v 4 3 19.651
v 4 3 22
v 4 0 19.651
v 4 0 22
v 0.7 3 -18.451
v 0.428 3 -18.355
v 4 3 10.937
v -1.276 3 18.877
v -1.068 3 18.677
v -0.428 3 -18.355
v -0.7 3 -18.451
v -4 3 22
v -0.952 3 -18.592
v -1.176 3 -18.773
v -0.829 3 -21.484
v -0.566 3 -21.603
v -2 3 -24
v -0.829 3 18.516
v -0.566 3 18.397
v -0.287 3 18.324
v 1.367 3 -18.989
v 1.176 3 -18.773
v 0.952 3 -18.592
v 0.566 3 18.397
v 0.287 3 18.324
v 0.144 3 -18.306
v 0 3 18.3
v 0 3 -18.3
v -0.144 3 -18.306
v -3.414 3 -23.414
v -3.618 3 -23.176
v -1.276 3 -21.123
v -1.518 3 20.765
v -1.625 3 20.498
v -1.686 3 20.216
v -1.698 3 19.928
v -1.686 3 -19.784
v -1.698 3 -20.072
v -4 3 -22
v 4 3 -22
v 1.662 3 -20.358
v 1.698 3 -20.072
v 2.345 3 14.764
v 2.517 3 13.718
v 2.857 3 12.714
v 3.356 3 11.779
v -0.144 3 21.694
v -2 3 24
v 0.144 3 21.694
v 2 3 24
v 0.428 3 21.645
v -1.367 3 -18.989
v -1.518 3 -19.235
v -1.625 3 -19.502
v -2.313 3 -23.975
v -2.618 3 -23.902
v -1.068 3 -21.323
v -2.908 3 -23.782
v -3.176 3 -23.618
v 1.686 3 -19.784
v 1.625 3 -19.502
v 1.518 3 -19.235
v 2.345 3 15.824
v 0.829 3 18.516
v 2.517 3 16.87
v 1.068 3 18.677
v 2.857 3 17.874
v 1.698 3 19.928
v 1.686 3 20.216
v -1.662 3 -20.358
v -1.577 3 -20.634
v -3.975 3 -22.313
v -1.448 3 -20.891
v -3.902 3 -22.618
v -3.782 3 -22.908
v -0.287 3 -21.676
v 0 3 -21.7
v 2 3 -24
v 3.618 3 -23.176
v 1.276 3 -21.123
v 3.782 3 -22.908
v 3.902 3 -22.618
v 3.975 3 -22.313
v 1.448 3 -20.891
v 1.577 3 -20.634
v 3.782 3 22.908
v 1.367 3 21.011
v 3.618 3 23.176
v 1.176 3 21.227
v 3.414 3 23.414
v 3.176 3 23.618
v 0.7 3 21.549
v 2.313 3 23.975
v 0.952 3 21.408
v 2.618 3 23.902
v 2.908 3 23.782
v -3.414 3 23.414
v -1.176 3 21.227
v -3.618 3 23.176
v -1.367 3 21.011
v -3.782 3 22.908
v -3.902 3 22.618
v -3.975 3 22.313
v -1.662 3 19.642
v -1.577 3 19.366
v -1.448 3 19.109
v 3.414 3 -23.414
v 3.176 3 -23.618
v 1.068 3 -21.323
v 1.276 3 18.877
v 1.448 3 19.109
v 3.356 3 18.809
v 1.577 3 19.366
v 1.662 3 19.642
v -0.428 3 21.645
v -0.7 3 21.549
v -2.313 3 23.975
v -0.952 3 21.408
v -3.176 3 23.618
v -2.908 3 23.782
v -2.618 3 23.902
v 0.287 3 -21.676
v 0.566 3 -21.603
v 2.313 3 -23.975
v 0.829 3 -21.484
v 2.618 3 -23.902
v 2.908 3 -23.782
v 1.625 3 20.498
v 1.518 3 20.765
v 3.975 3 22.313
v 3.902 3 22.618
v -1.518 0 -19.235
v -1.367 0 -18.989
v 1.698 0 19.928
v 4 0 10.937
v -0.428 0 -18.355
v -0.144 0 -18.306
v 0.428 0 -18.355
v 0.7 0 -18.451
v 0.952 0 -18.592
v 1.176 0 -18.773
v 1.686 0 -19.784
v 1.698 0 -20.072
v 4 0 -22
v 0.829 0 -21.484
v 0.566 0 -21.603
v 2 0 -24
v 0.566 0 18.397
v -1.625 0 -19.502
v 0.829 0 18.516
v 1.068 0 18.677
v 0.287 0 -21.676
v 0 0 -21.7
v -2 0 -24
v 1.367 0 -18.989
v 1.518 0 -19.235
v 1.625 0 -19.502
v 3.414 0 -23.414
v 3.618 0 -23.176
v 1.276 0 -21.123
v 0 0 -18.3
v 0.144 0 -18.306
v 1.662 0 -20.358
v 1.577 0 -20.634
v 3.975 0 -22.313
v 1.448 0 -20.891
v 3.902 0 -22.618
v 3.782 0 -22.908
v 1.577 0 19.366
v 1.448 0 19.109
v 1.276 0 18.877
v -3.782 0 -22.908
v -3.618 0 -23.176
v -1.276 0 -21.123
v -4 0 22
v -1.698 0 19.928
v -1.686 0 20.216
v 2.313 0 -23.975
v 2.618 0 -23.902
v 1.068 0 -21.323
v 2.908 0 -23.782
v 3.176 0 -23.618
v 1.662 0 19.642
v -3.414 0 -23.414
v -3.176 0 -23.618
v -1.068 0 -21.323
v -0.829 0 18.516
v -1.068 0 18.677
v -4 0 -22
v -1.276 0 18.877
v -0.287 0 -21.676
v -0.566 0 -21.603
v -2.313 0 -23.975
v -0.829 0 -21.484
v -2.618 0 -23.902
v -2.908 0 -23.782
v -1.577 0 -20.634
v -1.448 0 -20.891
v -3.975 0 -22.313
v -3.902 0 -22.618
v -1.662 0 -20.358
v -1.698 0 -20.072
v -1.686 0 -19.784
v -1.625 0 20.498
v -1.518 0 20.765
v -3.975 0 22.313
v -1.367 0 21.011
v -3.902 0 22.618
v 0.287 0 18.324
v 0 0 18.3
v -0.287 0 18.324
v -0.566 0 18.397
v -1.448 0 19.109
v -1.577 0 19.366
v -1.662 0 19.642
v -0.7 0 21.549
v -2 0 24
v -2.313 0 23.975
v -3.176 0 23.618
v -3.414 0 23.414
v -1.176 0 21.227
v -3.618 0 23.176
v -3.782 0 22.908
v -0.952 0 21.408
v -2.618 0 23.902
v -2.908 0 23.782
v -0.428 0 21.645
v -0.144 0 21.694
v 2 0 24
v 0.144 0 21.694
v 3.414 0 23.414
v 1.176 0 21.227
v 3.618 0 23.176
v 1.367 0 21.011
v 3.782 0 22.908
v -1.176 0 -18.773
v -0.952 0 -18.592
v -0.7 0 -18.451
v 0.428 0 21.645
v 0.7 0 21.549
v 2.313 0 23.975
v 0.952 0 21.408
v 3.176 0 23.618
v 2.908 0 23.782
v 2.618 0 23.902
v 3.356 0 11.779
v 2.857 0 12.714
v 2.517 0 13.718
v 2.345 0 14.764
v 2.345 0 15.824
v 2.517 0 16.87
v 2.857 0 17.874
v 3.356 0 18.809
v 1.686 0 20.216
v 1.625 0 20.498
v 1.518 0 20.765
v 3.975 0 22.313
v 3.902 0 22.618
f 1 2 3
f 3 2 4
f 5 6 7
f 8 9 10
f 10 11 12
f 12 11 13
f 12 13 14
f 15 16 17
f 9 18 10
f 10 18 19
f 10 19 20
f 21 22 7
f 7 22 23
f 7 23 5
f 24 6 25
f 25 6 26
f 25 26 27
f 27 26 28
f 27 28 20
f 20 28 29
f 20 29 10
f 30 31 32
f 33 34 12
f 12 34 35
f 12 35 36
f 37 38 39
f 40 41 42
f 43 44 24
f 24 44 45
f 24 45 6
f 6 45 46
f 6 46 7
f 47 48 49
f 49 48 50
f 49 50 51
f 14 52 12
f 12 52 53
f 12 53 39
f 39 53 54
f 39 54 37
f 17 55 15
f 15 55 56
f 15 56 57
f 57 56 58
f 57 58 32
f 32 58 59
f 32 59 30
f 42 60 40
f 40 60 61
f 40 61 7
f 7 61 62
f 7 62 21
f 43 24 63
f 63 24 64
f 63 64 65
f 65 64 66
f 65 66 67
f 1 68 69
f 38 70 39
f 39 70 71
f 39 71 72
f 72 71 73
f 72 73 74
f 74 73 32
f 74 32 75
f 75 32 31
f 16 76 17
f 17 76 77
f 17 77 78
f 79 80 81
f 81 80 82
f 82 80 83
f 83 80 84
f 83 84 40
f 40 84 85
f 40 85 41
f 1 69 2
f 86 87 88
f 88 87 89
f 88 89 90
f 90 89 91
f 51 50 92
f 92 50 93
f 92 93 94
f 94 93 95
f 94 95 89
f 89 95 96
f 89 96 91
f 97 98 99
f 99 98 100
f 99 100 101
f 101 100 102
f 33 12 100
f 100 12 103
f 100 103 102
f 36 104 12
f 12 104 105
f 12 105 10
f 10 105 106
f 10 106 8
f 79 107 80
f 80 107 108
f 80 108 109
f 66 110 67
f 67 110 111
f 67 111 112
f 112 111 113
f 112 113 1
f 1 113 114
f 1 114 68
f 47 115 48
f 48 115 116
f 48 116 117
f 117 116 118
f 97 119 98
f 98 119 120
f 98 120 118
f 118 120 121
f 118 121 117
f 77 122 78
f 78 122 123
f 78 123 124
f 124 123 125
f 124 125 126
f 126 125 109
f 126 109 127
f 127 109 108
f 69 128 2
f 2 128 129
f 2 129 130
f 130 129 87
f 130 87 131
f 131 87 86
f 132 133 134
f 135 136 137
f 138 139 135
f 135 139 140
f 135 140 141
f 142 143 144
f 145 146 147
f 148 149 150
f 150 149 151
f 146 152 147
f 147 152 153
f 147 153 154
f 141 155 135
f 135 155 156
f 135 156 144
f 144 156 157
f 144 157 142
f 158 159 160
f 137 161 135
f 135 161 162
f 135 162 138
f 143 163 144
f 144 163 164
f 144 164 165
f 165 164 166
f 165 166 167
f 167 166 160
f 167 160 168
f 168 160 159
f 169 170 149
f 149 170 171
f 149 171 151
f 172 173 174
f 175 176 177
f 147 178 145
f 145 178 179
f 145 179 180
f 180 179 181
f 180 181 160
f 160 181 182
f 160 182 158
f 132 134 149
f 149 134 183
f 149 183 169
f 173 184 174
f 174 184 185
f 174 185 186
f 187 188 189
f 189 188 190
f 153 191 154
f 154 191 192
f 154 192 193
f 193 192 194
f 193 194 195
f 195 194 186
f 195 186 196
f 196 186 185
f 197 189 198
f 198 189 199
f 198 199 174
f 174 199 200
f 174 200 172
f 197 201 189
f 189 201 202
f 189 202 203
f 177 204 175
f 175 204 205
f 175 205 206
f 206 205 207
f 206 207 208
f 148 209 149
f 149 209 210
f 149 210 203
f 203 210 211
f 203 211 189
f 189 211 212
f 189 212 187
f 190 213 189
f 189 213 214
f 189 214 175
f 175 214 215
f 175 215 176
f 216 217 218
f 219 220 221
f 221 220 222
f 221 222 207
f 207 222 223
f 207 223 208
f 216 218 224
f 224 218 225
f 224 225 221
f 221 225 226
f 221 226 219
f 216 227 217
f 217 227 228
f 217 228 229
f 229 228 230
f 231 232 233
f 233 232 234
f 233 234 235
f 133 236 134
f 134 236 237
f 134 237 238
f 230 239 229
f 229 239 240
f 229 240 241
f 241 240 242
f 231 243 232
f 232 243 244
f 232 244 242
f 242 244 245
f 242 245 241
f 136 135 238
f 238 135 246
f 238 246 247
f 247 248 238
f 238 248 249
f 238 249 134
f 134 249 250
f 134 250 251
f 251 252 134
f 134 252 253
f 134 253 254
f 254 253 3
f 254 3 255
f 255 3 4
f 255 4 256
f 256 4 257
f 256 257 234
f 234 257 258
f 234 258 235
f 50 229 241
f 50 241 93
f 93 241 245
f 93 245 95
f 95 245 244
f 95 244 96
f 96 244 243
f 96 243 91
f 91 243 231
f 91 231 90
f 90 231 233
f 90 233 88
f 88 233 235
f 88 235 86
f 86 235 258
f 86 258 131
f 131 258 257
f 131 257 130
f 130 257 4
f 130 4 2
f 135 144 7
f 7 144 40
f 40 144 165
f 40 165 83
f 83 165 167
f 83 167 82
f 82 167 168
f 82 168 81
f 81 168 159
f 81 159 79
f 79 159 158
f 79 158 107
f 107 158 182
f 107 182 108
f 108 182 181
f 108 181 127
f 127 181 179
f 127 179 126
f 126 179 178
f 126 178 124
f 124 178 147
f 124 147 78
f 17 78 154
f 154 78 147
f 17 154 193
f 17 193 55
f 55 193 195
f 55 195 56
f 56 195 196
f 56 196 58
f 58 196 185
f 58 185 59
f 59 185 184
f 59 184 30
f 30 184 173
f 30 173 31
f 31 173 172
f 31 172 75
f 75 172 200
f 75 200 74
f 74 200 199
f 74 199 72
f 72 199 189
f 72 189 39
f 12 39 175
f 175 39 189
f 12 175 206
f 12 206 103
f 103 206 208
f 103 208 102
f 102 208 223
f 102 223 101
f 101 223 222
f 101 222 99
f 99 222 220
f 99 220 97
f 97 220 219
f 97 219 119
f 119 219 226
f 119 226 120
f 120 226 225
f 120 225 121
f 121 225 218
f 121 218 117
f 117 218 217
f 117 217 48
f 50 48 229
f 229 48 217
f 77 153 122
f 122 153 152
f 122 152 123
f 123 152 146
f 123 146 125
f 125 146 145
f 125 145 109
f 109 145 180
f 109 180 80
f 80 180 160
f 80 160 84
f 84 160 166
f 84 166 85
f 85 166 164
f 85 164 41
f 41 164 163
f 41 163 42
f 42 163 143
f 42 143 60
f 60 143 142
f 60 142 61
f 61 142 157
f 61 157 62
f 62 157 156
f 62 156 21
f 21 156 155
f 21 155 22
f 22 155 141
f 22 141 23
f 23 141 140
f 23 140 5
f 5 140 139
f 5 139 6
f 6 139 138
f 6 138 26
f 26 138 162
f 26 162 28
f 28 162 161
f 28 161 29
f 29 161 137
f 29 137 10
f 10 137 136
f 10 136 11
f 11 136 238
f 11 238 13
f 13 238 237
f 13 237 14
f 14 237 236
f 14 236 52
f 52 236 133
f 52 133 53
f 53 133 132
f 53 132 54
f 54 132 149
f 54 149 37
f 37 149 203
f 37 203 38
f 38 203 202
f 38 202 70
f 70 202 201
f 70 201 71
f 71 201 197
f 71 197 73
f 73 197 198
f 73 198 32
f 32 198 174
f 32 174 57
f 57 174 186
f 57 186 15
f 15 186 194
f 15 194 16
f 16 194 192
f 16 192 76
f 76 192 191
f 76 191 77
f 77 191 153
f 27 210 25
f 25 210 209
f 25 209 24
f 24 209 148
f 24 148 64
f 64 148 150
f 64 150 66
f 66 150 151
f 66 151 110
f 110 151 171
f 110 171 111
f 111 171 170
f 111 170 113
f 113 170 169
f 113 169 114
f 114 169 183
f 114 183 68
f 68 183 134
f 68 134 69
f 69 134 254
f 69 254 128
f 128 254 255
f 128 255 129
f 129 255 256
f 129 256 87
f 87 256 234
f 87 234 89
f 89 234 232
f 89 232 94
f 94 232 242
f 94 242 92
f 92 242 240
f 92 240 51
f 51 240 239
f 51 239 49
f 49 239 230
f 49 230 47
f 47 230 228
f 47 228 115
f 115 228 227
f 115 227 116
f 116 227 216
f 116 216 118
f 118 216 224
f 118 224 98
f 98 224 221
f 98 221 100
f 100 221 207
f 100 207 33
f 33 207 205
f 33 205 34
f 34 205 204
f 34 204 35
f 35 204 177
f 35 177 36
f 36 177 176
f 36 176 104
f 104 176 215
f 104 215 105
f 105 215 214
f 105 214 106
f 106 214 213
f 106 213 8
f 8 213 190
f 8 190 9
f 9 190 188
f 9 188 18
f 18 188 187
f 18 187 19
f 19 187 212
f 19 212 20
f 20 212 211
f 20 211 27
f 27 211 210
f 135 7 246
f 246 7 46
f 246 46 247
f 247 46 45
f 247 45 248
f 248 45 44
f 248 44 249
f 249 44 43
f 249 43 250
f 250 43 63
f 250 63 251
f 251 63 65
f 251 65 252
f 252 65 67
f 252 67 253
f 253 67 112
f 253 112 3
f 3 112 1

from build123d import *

# Parameters (mm, degrees)
SKETCH_1_R          = 1.7
EXTRUDE_1_DEPTH     = 3
CUT_EXTRUDE_1_DEPTH = 3


with BuildPart() as part:
    # 草圖1 → 填料-伸長1 (new body)
    with BuildSketch(Plane(origin=(0, 0, 0), x_dir=(1, 0, 0), z_dir=(0, 1, 0))):
        with BuildLine():
            Line((-2, 24), (2, 24))
            ThreePointArc((2, 24), (3.414213562, 23.414213562), (4, 22))
            Line((4, 22), (4, -22))
            ThreePointArc((4, -22), (3.414213562, -23.414213562), (2, -24))
            Line((2, -24), (-2, -24))
            ThreePointArc((-2, -24), (-3.414213562, -23.414213562), (-4, -22))
            Line((-4, -22), (-4, 22))
            ThreePointArc((-4, 22), (-3.414213562, 23.414213562), (-2, 24))
        make_face()
        with Locations(Location((0, 20, 0), (0, 0, 270))):
            Circle(SKETCH_1_R, mode=Mode.SUBTRACT)
        with Locations(Location((0, -20, 0), (0, 0, 90))):
            Circle(SKETCH_1_R, mode=Mode.SUBTRACT)
    extrude(amount=EXTRUDE_1_DEPTH)

    # 草圖2 → 除料-伸長1 (cut)
    with BuildSketch(Plane(origin=(0, 3, 0), x_dir=(1, 0, 0), z_dir=(0, 1, 0))):
        with BuildLine():
            Line((4, -10.936925409), (8.605915435, -21.790363308))
            ThreePointArc((8.605915435, -21.790363308), (2.8399706, -17.8332456), (4, -10.936925409))
        make_face()
    extrude(amount=-CUT_EXTRUDE_1_DEPTH, mode=Mode.SUBTRACT)


solid = part.part
